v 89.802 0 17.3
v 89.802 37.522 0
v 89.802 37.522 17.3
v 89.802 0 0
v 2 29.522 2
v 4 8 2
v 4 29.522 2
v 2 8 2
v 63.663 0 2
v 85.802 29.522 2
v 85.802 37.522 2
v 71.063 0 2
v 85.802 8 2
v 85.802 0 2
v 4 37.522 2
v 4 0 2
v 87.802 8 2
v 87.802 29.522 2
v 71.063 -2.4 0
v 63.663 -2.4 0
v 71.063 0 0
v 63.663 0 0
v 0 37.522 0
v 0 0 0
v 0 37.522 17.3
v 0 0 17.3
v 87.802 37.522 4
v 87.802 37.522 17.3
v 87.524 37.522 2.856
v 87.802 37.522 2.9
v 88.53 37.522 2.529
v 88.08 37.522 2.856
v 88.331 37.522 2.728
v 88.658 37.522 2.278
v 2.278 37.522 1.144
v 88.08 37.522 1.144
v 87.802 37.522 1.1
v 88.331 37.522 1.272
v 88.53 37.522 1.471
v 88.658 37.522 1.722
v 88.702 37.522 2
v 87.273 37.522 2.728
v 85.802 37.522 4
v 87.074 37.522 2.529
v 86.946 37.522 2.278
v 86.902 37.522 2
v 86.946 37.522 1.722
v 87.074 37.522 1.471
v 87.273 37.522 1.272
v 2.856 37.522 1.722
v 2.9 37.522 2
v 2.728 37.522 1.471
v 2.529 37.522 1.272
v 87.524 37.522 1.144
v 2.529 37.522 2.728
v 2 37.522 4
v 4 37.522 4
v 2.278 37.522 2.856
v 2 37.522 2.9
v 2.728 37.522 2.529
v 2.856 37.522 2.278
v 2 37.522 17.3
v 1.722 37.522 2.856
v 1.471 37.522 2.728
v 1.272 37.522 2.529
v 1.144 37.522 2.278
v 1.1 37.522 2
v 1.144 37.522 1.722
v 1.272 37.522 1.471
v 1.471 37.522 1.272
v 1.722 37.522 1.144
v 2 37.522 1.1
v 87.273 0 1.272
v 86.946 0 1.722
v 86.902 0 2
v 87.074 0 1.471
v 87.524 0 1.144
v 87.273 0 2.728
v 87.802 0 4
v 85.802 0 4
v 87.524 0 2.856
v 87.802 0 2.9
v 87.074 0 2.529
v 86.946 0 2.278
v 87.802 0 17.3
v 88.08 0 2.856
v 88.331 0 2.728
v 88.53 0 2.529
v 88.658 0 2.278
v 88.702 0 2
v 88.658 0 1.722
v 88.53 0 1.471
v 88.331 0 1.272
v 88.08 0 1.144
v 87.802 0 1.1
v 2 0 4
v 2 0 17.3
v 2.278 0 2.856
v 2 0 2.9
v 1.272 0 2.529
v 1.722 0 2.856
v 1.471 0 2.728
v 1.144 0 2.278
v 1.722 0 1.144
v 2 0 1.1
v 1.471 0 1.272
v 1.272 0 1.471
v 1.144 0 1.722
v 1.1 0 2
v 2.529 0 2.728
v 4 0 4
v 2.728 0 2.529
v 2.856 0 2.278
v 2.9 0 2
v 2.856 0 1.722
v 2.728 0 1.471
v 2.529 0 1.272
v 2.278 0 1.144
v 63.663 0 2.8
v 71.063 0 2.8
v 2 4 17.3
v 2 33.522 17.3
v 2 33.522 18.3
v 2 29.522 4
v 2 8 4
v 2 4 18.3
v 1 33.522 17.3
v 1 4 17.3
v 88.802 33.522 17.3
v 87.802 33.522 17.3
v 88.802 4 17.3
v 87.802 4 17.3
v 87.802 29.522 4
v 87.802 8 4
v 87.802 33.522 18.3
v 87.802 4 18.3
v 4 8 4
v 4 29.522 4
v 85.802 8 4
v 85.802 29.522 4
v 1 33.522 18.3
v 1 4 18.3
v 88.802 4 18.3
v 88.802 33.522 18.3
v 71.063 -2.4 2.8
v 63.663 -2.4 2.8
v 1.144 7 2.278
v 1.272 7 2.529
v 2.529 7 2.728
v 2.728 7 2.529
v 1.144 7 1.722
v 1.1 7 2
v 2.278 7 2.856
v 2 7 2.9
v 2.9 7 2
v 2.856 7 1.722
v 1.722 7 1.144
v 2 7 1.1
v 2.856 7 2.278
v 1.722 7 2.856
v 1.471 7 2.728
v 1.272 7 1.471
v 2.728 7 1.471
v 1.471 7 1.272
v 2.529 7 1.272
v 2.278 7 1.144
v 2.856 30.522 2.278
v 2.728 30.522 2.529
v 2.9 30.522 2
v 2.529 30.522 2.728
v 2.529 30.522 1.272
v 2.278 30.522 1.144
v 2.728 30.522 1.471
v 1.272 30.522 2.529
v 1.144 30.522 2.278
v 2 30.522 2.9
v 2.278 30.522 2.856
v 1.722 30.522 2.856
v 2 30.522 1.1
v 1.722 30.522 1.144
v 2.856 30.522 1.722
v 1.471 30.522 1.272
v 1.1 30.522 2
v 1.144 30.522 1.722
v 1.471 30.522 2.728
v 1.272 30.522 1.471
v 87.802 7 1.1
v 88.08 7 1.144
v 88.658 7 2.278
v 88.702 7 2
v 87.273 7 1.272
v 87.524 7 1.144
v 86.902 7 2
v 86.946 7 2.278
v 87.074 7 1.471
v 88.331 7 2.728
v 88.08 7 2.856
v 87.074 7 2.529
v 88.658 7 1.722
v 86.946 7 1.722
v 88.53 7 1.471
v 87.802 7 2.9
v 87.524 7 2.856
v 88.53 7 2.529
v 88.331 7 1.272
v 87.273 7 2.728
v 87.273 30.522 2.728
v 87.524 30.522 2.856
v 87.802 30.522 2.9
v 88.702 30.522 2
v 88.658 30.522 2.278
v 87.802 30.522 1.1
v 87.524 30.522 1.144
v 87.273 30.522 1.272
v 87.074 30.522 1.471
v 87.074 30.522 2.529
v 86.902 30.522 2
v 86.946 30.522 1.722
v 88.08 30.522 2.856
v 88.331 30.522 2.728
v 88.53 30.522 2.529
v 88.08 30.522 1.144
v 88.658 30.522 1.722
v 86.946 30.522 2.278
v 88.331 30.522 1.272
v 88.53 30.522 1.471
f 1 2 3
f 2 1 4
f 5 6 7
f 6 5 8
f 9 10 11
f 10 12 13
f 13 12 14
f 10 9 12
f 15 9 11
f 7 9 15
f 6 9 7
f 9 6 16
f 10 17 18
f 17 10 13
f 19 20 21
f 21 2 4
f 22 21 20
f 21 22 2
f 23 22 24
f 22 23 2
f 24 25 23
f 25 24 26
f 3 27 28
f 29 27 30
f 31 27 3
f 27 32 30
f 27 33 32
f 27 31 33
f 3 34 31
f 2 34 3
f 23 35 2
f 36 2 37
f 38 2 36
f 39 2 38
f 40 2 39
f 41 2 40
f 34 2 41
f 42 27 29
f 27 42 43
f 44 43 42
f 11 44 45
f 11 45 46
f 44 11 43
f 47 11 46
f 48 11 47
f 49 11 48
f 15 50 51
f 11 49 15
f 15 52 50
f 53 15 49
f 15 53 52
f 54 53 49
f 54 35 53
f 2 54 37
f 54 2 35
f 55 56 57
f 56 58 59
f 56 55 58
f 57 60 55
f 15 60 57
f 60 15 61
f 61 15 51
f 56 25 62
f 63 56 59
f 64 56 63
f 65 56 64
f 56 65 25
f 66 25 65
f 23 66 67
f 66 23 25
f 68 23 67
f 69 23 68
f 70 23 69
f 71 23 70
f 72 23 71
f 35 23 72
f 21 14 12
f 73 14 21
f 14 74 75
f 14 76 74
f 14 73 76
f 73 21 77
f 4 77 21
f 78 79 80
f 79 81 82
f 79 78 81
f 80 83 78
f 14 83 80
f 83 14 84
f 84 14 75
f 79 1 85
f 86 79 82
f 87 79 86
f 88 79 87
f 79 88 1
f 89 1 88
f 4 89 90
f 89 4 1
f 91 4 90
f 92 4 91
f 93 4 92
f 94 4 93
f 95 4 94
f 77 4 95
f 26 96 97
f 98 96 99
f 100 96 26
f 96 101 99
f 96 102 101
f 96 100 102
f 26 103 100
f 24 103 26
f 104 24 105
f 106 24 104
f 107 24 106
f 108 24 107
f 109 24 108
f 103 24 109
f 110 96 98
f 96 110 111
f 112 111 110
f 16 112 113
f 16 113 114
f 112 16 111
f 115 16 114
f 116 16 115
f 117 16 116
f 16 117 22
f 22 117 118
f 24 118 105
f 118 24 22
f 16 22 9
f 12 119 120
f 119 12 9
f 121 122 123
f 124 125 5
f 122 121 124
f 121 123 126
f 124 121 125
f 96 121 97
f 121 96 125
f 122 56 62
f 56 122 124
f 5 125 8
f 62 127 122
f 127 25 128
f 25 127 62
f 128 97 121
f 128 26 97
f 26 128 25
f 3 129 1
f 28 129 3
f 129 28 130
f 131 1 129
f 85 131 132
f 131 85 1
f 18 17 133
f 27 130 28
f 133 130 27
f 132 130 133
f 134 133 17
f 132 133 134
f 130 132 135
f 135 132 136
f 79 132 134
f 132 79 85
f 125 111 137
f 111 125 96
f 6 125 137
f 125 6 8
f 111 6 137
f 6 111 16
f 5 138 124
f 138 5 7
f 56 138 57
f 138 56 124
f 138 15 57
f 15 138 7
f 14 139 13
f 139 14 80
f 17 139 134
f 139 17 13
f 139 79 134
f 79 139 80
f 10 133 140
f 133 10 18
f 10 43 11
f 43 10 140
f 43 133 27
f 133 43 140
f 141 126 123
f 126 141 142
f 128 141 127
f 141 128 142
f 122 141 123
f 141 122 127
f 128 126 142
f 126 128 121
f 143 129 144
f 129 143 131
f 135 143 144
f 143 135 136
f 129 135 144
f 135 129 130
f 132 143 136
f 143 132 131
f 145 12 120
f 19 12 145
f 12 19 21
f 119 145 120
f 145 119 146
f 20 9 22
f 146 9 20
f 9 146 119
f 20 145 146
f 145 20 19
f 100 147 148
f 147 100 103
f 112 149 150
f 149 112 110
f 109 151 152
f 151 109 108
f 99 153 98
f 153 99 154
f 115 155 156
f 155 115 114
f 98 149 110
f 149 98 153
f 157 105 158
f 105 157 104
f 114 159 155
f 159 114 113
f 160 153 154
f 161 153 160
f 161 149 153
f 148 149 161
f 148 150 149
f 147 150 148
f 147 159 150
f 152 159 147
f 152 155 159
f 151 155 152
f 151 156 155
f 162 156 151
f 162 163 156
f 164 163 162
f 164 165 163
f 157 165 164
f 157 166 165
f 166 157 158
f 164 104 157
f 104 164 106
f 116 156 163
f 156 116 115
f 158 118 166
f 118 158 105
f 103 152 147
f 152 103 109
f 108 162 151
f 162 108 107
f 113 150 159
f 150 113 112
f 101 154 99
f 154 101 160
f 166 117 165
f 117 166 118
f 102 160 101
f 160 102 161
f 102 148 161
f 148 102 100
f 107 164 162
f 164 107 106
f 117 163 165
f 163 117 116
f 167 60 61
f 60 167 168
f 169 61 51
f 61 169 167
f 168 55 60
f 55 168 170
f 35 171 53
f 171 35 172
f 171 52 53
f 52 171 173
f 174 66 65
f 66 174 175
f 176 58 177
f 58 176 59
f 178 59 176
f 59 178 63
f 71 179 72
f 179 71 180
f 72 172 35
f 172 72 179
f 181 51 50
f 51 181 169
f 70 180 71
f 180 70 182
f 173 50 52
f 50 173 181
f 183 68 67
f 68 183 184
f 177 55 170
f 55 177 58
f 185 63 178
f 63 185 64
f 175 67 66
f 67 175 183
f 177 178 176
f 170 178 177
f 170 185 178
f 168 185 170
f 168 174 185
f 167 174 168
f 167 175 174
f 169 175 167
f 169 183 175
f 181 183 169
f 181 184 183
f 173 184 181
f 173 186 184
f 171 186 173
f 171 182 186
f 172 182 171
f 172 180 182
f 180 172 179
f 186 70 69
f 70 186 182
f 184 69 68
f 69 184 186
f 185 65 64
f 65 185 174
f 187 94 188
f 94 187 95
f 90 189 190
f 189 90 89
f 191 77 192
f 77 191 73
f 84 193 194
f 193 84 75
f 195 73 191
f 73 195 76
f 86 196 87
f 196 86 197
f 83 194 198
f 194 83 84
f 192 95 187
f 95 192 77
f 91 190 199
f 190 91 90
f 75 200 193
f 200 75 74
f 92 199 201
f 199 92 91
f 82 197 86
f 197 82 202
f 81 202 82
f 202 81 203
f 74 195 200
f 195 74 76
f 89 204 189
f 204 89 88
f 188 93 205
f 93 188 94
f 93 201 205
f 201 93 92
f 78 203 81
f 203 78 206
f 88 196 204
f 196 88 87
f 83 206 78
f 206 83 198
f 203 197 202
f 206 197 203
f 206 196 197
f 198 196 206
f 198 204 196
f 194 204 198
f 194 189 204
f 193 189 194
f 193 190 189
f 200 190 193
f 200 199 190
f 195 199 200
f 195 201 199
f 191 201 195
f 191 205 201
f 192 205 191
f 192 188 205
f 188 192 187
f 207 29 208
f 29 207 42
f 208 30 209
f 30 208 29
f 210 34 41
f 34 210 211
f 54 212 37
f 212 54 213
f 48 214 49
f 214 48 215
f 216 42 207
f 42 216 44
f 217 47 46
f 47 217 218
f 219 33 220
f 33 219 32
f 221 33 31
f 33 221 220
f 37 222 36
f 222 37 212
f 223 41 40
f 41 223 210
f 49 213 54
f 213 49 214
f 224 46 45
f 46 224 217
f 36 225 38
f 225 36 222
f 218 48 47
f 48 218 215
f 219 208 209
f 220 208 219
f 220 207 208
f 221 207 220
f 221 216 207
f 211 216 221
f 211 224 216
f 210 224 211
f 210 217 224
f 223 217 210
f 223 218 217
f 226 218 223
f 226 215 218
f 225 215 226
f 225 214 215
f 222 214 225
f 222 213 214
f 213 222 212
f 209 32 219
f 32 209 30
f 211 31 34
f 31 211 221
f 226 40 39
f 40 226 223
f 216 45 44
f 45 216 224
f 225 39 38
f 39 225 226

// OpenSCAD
// file: settings.scad
/*
 * SPDX-FileCopyrightText: 2022 Rafael G. Martins <rafael@rafaelmartins.eng.br>
 * SPDX-License-Identifier: CERN-OHL-S-2.0
 */

thickness = 2;

pcb_width = 84.582;
pcb_length = 36.322;
pcb_screw1_x = 2.921;
pcb_screw1_y = 5.207 + 13.716;
pcb_screw2_x = pcb_screw1_x + 17.018;
pcb_screw2_y = pcb_screw1_y + 12.192;
pcb_screw3_x = pcb_screw2_x + 22.352;
pcb_screw3_y = pcb_screw2_y;
pcb_screw_base_height = 9;
pcb_screw_base_d = 5;
pcb_screw_d = 2;
pcb_padding_x = thickness + 0.5;
pcb_padding_y = thickness + 1;

screw_d = 2;
screw_h = 7;

usb_height = 4.4;
usb_width = 8.2;
usb_distance_x = pcb_padding_x + 19.939 - usb_width / 2;
usb_distance_z = thickness + pcb_screw_base_height + 1.6 - 0.1;

button0_x = 8.890;
button0_y = 6.858;
button_d = 12;
button_distance = 22.352;

led_width = 1.8;
led_length = 1;
led_margin = 1;
led_x = 75.819;
led_y = 17.526;
led_d = 3.2;

gap = thickness * 0.2;

width = pcb_width + 2 * pcb_padding_x + 0.22;  // buttons are slightly out of center :(
length = pcb_length + 2 * pcb_padding_y;
height = usb_distance_z + usb_height + 0.8 + thickness;
// file: lib/screw-base.scad
// SPDX-FileCopyrightText: 2022-2024 Rafael G. Martins <rafael@rafaelmartins.eng.br>
// SPDX-License-Identifier: CERN-OHL-S-2.0

function screw_base_dim(screw_d) = screw_d + 2;
function screw_base_height(screw_h) = screw_h + 1;


module screw_base_add(screw_d, screw_h) {
    cube([screw_base_dim(screw_d), screw_base_dim(screw_d), screw_base_height(screw_h)]);
}


module screw_base_sub(screw_d, screw_h) {
    translate([screw_base_dim(screw_d) / 2, screw_base_dim(screw_d) / 2, 0])
        cylinder(screw_h, d=screw_d - 0.2, $fn=20);
}
// main file
/*
 * SPDX-FileCopyrightText: 2022 Rafael G. Martins <rafael@rafaelmartins.eng.br>
 * SPDX-License-Identifier: CERN-OHL-S-2.0
 */

include <lib/screw-base.scad>
include <settings.scad>

length_ = length - 2 * (thickness + gap);
height_ = height - thickness - gap;

difference() {
    union() {
        cube([width, length_, thickness]);
        cube([thickness, length_, height_]);
        translate([width - thickness, 0, 0])
            cube([thickness, length_, height_]);

        rotate([-90, -90, 0])
            screw_base_add(screw_d, screw_h);
        translate([0, length_, 0])
            rotate([90, 0, 0])
                screw_base_add(screw_d, screw_h);
        translate([width, 0, 0])
            rotate([-90, 180, 0])
                screw_base_add(screw_d, screw_h);
        translate([width, length_, 0])
            rotate([90, -90, 0])
                screw_base_add(screw_d, screw_h);

        translate([thickness / 2, 4, height_])
            cube([thickness / 2, length_ - 8, thickness / 2]);
        translate([width - thickness, 4, height_])
            cube([thickness / 2, length_ - 8, thickness / 2]);

        translate([width - usb_distance_x - usb_width + gap, -(thickness + gap), 0])
            cube([usb_width - 2 * gap, thickness + gap, height - usb_distance_z - usb_height]);
    }

    rotate([-90, -90, 0])
        screw_base_sub(screw_d, screw_h);
    translate([0, length_, 0])
        rotate([90, 0, 0])
            screw_base_sub(screw_d, screw_h);
    translate([width, 0, 0])
        rotate([-90, 180, 0])
            screw_base_sub(screw_d, screw_h);
    translate([width, length_, 0])
        rotate([90, -90, 0])
            screw_base_sub(screw_d, screw_h);
}
